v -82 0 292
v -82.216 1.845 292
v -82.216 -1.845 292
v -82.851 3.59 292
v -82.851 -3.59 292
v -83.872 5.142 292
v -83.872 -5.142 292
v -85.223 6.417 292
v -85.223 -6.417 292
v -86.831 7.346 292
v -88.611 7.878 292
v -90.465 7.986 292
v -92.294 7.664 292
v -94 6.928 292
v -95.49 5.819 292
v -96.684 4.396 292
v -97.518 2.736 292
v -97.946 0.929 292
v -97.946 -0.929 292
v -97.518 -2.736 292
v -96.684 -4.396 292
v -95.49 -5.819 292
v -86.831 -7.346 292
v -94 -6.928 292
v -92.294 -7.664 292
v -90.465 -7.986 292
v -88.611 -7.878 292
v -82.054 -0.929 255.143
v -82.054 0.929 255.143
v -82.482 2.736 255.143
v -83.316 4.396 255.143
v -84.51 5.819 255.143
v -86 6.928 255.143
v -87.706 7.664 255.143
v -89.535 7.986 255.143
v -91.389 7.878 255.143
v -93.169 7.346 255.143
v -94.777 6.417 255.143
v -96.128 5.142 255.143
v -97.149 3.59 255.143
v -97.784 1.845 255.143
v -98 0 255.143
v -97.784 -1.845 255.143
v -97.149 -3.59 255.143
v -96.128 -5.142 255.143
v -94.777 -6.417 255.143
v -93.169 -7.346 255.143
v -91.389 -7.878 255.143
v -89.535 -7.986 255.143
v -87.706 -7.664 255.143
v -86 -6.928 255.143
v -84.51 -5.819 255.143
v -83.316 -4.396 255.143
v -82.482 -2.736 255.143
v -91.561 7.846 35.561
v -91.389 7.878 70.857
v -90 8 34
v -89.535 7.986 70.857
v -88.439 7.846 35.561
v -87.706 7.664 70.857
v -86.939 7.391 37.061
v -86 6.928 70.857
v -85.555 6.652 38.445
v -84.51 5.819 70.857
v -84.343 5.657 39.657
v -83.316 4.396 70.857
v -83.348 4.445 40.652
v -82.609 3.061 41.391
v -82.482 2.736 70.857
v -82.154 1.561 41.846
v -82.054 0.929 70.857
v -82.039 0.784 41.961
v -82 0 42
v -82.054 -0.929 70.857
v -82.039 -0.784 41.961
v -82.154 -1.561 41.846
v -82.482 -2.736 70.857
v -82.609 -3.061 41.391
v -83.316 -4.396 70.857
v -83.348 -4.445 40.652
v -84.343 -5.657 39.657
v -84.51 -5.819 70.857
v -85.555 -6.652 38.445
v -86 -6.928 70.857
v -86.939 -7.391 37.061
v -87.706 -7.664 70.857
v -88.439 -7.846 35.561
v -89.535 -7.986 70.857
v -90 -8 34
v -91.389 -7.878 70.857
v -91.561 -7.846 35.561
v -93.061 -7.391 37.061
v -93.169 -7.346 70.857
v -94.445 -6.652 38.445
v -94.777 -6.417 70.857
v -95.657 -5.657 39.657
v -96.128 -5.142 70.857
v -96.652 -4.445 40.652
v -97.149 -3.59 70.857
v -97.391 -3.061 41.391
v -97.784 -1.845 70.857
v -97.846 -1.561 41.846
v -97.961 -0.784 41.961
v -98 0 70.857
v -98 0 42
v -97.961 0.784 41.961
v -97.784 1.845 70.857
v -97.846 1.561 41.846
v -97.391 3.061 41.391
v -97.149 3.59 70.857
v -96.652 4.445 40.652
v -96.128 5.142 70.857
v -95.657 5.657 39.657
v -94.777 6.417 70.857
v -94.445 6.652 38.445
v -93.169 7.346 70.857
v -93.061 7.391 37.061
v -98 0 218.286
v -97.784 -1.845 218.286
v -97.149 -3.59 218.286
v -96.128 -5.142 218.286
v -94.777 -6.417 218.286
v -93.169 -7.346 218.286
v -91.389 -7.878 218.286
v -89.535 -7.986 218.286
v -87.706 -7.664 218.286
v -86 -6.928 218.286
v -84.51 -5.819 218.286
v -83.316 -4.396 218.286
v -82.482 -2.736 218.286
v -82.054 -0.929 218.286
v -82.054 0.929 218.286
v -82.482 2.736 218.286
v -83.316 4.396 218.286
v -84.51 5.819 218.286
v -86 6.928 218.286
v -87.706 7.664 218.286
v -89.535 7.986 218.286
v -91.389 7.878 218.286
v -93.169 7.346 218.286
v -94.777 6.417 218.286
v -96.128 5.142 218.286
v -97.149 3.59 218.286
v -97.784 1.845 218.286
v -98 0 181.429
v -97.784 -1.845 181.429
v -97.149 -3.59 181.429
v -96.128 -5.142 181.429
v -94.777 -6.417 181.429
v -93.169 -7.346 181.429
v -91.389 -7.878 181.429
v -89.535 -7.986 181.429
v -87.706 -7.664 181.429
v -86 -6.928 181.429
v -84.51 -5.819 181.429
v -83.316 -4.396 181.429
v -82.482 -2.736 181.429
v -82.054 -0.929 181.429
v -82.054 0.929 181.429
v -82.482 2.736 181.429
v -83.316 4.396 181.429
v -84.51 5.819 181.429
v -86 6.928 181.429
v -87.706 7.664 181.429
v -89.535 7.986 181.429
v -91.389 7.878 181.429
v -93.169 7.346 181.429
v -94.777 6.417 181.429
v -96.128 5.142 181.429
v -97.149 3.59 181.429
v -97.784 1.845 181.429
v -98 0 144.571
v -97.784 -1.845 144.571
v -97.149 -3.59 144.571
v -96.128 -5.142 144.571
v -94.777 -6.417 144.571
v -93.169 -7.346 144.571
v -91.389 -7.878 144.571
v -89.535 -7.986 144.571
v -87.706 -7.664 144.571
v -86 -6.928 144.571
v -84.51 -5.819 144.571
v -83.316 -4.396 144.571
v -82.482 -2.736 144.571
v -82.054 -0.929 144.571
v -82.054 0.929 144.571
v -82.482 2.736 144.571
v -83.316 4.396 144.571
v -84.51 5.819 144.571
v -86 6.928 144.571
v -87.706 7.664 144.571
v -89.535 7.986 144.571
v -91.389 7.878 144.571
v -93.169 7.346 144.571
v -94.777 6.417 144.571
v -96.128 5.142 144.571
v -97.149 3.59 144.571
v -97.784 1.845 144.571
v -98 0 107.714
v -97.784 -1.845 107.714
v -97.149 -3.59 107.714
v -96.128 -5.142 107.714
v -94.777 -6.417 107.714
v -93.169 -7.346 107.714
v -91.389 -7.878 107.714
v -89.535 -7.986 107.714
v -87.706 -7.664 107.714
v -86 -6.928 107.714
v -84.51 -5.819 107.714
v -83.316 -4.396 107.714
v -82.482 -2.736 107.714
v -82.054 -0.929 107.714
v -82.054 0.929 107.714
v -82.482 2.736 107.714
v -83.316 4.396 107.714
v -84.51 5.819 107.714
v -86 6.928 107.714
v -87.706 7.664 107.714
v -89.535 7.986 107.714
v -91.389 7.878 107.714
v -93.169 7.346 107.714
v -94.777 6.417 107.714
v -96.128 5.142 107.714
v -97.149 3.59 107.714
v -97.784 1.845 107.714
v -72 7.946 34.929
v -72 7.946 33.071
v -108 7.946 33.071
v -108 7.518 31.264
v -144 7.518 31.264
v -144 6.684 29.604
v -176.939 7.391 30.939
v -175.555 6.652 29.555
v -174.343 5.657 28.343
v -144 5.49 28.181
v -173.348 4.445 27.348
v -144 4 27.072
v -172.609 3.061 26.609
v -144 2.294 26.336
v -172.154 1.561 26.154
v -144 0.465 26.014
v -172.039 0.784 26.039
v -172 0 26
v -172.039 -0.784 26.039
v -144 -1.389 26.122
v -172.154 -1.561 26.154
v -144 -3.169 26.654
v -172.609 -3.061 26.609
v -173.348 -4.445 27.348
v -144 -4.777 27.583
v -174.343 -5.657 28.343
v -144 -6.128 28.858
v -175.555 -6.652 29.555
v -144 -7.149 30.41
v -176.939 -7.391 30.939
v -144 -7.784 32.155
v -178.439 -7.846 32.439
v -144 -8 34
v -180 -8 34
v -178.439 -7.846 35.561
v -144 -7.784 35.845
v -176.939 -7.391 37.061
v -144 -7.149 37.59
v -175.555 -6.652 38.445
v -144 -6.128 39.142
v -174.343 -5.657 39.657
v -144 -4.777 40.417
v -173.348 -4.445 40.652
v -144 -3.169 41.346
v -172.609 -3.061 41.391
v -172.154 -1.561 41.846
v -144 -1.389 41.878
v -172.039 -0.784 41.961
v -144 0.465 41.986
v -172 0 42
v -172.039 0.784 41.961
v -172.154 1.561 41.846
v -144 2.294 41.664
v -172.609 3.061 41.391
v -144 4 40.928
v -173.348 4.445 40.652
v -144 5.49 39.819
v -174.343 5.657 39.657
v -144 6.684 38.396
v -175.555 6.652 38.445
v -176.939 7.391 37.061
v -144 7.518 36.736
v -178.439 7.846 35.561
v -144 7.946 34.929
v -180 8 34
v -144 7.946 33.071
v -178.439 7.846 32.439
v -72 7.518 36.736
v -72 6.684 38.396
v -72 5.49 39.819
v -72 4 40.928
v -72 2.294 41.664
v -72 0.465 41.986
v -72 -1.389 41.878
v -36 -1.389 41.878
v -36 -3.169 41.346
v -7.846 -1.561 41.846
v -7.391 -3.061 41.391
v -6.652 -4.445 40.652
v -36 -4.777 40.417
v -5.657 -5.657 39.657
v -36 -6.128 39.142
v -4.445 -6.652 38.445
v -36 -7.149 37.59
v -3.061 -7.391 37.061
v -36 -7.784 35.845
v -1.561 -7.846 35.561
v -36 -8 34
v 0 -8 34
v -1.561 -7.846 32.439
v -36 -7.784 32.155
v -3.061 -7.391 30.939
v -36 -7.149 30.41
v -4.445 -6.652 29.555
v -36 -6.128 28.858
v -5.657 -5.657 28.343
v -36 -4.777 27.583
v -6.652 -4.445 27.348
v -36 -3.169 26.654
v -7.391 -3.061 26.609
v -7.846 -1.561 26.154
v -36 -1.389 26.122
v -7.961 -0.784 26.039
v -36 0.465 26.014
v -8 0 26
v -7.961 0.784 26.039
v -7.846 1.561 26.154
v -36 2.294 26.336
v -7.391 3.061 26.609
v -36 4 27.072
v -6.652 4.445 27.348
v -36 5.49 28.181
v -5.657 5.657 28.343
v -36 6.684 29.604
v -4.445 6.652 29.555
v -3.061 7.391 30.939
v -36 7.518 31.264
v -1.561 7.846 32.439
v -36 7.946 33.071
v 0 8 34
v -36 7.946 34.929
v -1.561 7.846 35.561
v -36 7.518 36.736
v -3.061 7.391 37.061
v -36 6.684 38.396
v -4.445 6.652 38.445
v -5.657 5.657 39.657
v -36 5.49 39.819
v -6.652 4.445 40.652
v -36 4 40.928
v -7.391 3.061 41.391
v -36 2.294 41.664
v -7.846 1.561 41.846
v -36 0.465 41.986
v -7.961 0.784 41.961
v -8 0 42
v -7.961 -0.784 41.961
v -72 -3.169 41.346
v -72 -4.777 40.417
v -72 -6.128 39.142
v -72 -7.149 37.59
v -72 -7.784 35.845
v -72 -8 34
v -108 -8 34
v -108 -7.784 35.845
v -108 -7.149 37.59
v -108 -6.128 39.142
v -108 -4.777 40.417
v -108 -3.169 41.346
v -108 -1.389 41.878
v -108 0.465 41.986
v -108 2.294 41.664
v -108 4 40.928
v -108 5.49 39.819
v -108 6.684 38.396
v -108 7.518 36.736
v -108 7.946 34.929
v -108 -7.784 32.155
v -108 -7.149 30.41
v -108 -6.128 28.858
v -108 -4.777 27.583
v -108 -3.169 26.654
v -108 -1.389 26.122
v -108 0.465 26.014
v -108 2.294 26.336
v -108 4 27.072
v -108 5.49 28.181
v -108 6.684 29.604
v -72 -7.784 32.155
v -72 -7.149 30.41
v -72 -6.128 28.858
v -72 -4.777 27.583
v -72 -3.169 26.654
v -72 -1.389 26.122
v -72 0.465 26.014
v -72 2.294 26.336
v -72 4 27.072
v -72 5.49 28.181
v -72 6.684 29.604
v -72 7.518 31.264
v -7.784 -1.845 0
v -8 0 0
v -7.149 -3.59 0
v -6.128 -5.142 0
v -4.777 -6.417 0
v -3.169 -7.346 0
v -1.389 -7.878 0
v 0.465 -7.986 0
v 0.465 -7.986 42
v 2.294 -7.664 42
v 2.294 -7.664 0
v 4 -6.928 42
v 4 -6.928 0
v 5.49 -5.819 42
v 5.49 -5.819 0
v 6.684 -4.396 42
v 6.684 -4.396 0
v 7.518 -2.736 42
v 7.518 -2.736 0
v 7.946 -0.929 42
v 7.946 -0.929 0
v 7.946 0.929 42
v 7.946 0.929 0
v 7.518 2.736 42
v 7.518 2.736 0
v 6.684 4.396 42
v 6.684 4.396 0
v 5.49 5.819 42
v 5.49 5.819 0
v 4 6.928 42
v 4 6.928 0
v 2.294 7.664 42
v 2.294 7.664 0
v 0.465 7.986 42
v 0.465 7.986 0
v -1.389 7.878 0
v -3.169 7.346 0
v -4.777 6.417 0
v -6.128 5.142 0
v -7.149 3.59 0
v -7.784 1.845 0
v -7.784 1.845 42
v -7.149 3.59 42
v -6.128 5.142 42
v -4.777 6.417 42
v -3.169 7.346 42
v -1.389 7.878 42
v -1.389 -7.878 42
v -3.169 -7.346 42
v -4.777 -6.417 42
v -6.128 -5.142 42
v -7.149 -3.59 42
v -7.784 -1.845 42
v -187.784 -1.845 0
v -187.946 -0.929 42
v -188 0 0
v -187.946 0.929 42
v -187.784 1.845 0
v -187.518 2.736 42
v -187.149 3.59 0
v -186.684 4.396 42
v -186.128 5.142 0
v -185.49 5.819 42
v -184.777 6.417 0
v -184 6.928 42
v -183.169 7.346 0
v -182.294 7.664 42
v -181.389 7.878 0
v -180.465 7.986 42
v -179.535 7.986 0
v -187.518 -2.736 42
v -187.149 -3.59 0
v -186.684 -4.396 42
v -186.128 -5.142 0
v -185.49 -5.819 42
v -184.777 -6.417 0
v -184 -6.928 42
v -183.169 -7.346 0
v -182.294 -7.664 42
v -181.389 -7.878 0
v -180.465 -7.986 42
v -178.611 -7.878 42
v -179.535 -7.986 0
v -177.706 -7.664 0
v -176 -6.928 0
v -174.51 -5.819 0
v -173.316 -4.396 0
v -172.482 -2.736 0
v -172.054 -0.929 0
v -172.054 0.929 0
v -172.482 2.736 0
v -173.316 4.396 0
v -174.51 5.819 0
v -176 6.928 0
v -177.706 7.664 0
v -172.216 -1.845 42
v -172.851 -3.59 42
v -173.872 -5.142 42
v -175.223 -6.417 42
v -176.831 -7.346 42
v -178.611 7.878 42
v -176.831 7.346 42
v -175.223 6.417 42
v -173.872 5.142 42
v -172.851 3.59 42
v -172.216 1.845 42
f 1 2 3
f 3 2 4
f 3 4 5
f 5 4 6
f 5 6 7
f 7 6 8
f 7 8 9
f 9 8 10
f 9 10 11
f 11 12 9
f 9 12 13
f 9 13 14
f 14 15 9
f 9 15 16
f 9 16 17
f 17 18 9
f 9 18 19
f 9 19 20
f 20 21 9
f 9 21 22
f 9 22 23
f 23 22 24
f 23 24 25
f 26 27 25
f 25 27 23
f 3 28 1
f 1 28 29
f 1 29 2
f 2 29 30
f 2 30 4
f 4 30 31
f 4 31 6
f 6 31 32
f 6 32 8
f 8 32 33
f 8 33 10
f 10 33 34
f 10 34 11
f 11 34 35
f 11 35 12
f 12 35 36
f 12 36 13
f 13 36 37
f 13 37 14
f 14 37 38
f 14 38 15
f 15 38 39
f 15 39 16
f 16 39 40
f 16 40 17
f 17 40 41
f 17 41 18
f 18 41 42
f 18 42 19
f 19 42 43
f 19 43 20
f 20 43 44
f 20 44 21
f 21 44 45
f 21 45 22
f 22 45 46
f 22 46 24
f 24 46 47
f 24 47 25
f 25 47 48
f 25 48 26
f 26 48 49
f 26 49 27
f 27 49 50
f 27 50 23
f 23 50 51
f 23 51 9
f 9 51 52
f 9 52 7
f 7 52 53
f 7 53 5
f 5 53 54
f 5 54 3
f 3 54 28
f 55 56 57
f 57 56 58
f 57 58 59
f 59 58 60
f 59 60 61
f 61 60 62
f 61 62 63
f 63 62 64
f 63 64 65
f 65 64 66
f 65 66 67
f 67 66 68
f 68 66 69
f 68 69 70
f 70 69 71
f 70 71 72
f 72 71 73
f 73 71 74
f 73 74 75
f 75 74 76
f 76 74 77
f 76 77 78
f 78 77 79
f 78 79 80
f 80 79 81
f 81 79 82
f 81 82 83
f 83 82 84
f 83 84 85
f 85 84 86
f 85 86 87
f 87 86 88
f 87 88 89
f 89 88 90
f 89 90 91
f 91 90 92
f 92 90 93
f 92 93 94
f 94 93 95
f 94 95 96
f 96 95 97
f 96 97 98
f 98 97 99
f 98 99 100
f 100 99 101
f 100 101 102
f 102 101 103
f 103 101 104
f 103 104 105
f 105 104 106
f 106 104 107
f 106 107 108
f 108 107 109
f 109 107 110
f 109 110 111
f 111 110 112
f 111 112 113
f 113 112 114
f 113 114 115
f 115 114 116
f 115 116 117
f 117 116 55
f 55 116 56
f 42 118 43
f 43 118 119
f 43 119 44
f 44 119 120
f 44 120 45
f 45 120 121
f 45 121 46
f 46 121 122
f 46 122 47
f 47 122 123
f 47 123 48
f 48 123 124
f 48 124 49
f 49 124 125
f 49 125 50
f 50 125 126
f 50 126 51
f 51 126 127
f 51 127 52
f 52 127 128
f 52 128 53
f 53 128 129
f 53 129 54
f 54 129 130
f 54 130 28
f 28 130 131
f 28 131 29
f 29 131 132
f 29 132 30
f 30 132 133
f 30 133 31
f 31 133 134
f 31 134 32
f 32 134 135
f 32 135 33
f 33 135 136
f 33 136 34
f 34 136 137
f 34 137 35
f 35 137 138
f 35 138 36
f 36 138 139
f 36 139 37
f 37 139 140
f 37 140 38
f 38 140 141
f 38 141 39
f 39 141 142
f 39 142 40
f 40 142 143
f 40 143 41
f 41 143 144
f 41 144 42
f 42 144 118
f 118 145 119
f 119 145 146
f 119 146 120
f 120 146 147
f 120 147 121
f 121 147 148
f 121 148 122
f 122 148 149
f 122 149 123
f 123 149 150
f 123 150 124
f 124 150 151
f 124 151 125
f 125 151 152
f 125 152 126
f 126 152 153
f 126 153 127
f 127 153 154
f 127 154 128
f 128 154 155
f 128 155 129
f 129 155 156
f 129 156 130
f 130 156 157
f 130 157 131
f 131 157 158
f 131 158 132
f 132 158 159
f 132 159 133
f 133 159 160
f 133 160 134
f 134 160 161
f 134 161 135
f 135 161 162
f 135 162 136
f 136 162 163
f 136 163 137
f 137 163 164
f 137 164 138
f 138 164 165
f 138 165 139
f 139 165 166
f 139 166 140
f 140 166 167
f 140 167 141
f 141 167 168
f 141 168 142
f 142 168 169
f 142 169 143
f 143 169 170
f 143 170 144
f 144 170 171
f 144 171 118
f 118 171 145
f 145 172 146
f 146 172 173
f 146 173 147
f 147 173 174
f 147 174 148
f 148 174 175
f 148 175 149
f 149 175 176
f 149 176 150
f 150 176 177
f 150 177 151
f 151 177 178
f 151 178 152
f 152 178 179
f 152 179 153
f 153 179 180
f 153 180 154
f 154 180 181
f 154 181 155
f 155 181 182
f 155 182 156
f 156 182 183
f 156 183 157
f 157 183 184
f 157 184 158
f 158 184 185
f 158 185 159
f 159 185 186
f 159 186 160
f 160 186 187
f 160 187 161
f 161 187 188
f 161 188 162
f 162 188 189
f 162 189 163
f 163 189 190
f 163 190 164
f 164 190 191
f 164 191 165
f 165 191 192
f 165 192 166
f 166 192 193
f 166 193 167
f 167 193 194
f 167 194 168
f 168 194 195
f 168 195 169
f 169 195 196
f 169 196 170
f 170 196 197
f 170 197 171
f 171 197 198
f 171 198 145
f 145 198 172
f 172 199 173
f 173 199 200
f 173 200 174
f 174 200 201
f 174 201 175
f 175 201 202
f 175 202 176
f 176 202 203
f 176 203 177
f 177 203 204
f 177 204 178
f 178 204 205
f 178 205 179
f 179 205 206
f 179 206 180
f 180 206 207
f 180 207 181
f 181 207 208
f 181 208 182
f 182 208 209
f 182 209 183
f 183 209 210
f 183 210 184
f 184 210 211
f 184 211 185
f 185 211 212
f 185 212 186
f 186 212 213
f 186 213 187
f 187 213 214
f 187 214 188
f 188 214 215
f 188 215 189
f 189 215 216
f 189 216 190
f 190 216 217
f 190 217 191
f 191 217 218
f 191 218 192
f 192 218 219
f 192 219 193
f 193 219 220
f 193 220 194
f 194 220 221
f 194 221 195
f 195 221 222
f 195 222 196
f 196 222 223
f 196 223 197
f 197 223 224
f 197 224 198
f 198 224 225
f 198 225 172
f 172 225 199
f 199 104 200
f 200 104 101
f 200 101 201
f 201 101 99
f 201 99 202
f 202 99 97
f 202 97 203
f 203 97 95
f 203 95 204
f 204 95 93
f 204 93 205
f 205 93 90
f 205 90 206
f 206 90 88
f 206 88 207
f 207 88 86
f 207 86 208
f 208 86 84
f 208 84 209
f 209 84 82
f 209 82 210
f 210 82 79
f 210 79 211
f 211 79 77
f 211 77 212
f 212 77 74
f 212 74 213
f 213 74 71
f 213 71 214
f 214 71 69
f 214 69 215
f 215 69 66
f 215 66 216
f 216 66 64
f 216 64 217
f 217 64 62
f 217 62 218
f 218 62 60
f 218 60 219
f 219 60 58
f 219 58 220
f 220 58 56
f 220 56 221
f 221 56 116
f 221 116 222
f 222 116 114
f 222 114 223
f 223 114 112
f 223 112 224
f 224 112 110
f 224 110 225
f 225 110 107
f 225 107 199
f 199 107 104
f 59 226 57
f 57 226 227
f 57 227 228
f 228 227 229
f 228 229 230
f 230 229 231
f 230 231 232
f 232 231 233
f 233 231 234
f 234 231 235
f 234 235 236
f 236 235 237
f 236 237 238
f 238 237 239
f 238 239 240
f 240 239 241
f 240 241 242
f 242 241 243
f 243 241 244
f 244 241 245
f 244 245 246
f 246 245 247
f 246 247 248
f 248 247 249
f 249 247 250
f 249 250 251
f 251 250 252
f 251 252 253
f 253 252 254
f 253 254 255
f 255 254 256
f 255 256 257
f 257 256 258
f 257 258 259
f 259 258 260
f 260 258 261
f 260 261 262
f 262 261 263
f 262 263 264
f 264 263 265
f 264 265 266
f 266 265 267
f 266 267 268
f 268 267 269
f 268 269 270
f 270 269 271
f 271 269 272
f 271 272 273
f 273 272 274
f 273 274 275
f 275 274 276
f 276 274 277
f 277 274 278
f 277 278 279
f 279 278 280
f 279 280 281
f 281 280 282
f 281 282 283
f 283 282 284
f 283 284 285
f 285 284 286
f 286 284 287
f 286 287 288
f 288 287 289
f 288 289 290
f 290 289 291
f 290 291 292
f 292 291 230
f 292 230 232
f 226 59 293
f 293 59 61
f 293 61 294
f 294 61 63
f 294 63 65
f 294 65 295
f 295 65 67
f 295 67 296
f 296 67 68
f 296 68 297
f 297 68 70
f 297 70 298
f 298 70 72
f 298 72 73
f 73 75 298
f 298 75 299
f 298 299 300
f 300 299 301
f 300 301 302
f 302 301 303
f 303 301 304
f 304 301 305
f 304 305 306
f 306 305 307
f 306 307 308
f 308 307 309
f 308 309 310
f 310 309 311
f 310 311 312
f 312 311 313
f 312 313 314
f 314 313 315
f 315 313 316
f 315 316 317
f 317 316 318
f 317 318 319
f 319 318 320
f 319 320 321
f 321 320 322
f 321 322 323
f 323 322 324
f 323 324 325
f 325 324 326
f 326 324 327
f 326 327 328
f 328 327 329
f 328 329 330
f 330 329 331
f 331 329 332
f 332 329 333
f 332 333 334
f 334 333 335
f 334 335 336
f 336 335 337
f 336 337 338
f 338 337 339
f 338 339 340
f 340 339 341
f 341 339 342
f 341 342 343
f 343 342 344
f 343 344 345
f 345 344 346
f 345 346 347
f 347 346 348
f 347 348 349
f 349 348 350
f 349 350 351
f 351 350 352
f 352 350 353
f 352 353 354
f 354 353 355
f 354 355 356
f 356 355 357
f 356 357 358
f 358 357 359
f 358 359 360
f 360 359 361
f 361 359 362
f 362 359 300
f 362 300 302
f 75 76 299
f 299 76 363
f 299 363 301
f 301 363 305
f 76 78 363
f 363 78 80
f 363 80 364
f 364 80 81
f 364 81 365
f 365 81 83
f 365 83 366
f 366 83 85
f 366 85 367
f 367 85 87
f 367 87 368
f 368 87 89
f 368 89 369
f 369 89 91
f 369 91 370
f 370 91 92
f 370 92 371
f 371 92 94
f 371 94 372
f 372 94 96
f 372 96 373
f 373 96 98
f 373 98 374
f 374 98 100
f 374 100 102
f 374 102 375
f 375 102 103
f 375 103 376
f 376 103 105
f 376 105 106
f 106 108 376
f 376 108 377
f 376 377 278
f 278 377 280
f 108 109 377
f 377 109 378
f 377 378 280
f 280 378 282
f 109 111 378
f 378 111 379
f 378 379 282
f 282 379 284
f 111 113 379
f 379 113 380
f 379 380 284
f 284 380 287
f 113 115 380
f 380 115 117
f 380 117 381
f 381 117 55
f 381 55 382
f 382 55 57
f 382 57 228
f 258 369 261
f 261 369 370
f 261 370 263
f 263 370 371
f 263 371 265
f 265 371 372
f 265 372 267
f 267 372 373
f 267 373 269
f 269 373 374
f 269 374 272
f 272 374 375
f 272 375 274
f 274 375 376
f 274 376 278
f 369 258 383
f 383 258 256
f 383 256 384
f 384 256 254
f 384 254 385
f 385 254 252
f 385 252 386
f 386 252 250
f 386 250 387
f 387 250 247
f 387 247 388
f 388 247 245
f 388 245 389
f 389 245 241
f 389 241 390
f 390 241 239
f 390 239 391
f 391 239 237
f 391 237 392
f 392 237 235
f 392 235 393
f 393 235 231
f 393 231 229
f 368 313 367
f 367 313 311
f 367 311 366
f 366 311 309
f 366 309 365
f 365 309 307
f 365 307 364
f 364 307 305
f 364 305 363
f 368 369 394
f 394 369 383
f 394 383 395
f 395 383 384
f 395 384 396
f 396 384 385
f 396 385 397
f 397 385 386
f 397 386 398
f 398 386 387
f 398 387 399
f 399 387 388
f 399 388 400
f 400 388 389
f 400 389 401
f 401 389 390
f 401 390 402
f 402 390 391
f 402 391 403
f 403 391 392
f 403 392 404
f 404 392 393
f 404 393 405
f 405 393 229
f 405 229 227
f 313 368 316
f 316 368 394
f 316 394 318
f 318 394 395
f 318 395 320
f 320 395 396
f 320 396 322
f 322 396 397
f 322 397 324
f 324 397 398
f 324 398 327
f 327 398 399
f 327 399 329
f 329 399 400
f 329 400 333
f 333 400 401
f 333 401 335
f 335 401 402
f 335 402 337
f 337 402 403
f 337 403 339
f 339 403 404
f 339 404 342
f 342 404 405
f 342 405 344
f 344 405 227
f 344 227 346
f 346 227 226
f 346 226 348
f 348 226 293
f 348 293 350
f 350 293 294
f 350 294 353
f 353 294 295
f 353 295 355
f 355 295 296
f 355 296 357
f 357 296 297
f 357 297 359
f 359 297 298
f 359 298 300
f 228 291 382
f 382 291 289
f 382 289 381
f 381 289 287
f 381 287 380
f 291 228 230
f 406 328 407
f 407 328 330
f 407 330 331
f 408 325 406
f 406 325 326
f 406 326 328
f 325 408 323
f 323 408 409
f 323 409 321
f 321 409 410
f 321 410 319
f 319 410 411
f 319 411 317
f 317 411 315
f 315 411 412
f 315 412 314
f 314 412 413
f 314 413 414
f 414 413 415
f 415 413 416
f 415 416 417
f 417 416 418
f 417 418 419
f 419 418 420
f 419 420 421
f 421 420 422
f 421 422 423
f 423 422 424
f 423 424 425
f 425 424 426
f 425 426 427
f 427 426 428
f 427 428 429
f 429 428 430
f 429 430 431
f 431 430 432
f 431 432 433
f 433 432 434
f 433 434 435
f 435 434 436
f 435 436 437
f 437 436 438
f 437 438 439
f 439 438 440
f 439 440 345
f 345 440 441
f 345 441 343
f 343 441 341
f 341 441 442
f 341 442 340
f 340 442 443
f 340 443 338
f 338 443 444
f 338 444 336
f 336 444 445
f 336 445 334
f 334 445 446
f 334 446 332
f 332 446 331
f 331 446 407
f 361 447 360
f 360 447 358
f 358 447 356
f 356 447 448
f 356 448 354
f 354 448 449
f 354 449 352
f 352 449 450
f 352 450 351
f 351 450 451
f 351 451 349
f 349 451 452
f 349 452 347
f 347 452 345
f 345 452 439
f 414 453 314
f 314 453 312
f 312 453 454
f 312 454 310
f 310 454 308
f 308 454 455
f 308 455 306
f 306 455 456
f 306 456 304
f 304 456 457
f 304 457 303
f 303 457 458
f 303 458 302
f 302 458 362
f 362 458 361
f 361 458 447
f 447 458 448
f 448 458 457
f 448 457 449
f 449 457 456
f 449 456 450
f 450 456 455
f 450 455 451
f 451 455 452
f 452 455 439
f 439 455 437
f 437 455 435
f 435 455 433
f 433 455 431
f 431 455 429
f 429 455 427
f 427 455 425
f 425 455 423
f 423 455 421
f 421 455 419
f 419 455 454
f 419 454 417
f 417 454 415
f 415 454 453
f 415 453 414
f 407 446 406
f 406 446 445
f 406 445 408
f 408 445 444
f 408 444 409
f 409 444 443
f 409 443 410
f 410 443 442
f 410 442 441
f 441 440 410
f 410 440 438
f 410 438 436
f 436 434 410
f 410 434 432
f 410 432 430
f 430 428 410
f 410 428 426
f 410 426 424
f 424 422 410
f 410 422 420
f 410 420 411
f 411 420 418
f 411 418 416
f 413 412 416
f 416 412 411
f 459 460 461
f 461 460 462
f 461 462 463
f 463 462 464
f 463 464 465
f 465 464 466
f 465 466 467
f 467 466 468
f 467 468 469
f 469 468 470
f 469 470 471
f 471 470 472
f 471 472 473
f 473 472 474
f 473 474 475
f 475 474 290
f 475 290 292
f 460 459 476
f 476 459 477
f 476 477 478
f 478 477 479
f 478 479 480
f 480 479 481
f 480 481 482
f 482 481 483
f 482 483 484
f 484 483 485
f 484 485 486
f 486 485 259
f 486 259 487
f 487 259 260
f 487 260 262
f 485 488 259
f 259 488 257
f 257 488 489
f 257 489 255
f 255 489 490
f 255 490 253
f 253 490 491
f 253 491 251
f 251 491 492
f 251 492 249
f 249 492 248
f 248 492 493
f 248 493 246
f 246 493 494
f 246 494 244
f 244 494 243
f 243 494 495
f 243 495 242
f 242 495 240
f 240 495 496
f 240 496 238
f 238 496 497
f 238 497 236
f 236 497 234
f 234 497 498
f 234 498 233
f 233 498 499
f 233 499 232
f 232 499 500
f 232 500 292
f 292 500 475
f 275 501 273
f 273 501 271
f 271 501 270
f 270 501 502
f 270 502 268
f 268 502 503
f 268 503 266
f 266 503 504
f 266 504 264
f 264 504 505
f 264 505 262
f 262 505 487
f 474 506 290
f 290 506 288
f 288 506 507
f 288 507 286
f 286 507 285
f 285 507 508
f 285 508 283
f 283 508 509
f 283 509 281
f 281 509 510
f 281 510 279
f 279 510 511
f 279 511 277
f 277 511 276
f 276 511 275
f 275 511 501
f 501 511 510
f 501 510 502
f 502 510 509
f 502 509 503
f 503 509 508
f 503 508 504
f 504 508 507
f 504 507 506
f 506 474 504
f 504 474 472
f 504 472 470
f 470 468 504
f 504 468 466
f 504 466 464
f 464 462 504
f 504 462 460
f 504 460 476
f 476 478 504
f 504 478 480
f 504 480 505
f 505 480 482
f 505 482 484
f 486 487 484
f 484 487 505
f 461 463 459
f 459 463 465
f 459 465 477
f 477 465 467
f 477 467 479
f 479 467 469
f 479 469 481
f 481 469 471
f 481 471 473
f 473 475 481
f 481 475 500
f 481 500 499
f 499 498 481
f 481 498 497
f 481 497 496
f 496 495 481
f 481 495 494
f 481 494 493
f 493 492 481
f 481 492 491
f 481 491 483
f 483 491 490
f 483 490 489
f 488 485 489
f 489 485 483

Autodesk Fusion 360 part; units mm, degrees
sketch "Sketch1" plane through (0, 0, 0) normal (0, 0, 1) x (1, 0, 0)
  circle A0 centre (-180, 0) radius 8
  circle A1 centre (0, 0) radius 8
  dimension "d1" = 16
  dimension "d2" = 16
  dimension "d3" = 180
extrude "Extrude1" add sketch "Sketch1" along normal blind 42 makes body 1 at (-172.0099, -0.3988, 28) makes body 2 at (7.9901, -0.3988, 28)
sketch "Sketch2" plane through (0, 0, 0) normal (1, 0, 0) x (0, 1, 0)
  line L0 (8, 42) -> (-8, 42)
  line L1 (8, 0) -> (-8, 0)
  line L2 (0, 42) -> (0, 34) construction
  circle A0 centre (0, 34) radius 8
  dimension "d6" = 8
extrude "Extrude2" add sketch "Sketch2" against normal blind 180 bodies 1 2
ref_plane "WorkPlane1" through (-100.4607, 0, 42) normal (0, 0, 1) x (0, -1, 0)
sketch "Sketch3" plane through (-100.4607, 0, 42) normal (0, 0, 1) x (1, 0, 0)
  arc A0 (-71.5393, 0) -> (-79.5393, 8) centre (-79.5393, 0) ccw
  arc A1 (-79.5393, -8) -> (-71.5393, 0) centre (-79.5393, 0) ccw
  arc A2 (-79.5393, -8) -> (-79.5393, 8) centre (-79.5393, 0) ccw
  arc A3 (100.4607, 8) -> (100.4607, -8) centre (100.4607, 0) ccw
  arc A4 (92.4607, 0) -> (100.4607, -8) centre (100.4607, 0) ccw
  arc A5 (100.4607, 8) -> (92.4607, 0) centre (100.4607, 0) ccw
  circle A6 centre (100.4607, 0) radius 8
  circle A7 centre (-79.5393, 0) radius 8
  line L0 (-79.5393, 0) -> (10.4607, 0) construction
  circle A8 centre (10.4607, 0) radius 8
  dimension "d10" = 90
  dimension "d11" = 16
extrude "Extrude3" add sketch "Sketch3" against normal blind 8 contours A8 bodies 1
extrude "Extrude4" add 1 faces at (-92.292, 0.3187, 42) along direction (0, 0, 1) blind 250 on bodies 1 bodies 1
